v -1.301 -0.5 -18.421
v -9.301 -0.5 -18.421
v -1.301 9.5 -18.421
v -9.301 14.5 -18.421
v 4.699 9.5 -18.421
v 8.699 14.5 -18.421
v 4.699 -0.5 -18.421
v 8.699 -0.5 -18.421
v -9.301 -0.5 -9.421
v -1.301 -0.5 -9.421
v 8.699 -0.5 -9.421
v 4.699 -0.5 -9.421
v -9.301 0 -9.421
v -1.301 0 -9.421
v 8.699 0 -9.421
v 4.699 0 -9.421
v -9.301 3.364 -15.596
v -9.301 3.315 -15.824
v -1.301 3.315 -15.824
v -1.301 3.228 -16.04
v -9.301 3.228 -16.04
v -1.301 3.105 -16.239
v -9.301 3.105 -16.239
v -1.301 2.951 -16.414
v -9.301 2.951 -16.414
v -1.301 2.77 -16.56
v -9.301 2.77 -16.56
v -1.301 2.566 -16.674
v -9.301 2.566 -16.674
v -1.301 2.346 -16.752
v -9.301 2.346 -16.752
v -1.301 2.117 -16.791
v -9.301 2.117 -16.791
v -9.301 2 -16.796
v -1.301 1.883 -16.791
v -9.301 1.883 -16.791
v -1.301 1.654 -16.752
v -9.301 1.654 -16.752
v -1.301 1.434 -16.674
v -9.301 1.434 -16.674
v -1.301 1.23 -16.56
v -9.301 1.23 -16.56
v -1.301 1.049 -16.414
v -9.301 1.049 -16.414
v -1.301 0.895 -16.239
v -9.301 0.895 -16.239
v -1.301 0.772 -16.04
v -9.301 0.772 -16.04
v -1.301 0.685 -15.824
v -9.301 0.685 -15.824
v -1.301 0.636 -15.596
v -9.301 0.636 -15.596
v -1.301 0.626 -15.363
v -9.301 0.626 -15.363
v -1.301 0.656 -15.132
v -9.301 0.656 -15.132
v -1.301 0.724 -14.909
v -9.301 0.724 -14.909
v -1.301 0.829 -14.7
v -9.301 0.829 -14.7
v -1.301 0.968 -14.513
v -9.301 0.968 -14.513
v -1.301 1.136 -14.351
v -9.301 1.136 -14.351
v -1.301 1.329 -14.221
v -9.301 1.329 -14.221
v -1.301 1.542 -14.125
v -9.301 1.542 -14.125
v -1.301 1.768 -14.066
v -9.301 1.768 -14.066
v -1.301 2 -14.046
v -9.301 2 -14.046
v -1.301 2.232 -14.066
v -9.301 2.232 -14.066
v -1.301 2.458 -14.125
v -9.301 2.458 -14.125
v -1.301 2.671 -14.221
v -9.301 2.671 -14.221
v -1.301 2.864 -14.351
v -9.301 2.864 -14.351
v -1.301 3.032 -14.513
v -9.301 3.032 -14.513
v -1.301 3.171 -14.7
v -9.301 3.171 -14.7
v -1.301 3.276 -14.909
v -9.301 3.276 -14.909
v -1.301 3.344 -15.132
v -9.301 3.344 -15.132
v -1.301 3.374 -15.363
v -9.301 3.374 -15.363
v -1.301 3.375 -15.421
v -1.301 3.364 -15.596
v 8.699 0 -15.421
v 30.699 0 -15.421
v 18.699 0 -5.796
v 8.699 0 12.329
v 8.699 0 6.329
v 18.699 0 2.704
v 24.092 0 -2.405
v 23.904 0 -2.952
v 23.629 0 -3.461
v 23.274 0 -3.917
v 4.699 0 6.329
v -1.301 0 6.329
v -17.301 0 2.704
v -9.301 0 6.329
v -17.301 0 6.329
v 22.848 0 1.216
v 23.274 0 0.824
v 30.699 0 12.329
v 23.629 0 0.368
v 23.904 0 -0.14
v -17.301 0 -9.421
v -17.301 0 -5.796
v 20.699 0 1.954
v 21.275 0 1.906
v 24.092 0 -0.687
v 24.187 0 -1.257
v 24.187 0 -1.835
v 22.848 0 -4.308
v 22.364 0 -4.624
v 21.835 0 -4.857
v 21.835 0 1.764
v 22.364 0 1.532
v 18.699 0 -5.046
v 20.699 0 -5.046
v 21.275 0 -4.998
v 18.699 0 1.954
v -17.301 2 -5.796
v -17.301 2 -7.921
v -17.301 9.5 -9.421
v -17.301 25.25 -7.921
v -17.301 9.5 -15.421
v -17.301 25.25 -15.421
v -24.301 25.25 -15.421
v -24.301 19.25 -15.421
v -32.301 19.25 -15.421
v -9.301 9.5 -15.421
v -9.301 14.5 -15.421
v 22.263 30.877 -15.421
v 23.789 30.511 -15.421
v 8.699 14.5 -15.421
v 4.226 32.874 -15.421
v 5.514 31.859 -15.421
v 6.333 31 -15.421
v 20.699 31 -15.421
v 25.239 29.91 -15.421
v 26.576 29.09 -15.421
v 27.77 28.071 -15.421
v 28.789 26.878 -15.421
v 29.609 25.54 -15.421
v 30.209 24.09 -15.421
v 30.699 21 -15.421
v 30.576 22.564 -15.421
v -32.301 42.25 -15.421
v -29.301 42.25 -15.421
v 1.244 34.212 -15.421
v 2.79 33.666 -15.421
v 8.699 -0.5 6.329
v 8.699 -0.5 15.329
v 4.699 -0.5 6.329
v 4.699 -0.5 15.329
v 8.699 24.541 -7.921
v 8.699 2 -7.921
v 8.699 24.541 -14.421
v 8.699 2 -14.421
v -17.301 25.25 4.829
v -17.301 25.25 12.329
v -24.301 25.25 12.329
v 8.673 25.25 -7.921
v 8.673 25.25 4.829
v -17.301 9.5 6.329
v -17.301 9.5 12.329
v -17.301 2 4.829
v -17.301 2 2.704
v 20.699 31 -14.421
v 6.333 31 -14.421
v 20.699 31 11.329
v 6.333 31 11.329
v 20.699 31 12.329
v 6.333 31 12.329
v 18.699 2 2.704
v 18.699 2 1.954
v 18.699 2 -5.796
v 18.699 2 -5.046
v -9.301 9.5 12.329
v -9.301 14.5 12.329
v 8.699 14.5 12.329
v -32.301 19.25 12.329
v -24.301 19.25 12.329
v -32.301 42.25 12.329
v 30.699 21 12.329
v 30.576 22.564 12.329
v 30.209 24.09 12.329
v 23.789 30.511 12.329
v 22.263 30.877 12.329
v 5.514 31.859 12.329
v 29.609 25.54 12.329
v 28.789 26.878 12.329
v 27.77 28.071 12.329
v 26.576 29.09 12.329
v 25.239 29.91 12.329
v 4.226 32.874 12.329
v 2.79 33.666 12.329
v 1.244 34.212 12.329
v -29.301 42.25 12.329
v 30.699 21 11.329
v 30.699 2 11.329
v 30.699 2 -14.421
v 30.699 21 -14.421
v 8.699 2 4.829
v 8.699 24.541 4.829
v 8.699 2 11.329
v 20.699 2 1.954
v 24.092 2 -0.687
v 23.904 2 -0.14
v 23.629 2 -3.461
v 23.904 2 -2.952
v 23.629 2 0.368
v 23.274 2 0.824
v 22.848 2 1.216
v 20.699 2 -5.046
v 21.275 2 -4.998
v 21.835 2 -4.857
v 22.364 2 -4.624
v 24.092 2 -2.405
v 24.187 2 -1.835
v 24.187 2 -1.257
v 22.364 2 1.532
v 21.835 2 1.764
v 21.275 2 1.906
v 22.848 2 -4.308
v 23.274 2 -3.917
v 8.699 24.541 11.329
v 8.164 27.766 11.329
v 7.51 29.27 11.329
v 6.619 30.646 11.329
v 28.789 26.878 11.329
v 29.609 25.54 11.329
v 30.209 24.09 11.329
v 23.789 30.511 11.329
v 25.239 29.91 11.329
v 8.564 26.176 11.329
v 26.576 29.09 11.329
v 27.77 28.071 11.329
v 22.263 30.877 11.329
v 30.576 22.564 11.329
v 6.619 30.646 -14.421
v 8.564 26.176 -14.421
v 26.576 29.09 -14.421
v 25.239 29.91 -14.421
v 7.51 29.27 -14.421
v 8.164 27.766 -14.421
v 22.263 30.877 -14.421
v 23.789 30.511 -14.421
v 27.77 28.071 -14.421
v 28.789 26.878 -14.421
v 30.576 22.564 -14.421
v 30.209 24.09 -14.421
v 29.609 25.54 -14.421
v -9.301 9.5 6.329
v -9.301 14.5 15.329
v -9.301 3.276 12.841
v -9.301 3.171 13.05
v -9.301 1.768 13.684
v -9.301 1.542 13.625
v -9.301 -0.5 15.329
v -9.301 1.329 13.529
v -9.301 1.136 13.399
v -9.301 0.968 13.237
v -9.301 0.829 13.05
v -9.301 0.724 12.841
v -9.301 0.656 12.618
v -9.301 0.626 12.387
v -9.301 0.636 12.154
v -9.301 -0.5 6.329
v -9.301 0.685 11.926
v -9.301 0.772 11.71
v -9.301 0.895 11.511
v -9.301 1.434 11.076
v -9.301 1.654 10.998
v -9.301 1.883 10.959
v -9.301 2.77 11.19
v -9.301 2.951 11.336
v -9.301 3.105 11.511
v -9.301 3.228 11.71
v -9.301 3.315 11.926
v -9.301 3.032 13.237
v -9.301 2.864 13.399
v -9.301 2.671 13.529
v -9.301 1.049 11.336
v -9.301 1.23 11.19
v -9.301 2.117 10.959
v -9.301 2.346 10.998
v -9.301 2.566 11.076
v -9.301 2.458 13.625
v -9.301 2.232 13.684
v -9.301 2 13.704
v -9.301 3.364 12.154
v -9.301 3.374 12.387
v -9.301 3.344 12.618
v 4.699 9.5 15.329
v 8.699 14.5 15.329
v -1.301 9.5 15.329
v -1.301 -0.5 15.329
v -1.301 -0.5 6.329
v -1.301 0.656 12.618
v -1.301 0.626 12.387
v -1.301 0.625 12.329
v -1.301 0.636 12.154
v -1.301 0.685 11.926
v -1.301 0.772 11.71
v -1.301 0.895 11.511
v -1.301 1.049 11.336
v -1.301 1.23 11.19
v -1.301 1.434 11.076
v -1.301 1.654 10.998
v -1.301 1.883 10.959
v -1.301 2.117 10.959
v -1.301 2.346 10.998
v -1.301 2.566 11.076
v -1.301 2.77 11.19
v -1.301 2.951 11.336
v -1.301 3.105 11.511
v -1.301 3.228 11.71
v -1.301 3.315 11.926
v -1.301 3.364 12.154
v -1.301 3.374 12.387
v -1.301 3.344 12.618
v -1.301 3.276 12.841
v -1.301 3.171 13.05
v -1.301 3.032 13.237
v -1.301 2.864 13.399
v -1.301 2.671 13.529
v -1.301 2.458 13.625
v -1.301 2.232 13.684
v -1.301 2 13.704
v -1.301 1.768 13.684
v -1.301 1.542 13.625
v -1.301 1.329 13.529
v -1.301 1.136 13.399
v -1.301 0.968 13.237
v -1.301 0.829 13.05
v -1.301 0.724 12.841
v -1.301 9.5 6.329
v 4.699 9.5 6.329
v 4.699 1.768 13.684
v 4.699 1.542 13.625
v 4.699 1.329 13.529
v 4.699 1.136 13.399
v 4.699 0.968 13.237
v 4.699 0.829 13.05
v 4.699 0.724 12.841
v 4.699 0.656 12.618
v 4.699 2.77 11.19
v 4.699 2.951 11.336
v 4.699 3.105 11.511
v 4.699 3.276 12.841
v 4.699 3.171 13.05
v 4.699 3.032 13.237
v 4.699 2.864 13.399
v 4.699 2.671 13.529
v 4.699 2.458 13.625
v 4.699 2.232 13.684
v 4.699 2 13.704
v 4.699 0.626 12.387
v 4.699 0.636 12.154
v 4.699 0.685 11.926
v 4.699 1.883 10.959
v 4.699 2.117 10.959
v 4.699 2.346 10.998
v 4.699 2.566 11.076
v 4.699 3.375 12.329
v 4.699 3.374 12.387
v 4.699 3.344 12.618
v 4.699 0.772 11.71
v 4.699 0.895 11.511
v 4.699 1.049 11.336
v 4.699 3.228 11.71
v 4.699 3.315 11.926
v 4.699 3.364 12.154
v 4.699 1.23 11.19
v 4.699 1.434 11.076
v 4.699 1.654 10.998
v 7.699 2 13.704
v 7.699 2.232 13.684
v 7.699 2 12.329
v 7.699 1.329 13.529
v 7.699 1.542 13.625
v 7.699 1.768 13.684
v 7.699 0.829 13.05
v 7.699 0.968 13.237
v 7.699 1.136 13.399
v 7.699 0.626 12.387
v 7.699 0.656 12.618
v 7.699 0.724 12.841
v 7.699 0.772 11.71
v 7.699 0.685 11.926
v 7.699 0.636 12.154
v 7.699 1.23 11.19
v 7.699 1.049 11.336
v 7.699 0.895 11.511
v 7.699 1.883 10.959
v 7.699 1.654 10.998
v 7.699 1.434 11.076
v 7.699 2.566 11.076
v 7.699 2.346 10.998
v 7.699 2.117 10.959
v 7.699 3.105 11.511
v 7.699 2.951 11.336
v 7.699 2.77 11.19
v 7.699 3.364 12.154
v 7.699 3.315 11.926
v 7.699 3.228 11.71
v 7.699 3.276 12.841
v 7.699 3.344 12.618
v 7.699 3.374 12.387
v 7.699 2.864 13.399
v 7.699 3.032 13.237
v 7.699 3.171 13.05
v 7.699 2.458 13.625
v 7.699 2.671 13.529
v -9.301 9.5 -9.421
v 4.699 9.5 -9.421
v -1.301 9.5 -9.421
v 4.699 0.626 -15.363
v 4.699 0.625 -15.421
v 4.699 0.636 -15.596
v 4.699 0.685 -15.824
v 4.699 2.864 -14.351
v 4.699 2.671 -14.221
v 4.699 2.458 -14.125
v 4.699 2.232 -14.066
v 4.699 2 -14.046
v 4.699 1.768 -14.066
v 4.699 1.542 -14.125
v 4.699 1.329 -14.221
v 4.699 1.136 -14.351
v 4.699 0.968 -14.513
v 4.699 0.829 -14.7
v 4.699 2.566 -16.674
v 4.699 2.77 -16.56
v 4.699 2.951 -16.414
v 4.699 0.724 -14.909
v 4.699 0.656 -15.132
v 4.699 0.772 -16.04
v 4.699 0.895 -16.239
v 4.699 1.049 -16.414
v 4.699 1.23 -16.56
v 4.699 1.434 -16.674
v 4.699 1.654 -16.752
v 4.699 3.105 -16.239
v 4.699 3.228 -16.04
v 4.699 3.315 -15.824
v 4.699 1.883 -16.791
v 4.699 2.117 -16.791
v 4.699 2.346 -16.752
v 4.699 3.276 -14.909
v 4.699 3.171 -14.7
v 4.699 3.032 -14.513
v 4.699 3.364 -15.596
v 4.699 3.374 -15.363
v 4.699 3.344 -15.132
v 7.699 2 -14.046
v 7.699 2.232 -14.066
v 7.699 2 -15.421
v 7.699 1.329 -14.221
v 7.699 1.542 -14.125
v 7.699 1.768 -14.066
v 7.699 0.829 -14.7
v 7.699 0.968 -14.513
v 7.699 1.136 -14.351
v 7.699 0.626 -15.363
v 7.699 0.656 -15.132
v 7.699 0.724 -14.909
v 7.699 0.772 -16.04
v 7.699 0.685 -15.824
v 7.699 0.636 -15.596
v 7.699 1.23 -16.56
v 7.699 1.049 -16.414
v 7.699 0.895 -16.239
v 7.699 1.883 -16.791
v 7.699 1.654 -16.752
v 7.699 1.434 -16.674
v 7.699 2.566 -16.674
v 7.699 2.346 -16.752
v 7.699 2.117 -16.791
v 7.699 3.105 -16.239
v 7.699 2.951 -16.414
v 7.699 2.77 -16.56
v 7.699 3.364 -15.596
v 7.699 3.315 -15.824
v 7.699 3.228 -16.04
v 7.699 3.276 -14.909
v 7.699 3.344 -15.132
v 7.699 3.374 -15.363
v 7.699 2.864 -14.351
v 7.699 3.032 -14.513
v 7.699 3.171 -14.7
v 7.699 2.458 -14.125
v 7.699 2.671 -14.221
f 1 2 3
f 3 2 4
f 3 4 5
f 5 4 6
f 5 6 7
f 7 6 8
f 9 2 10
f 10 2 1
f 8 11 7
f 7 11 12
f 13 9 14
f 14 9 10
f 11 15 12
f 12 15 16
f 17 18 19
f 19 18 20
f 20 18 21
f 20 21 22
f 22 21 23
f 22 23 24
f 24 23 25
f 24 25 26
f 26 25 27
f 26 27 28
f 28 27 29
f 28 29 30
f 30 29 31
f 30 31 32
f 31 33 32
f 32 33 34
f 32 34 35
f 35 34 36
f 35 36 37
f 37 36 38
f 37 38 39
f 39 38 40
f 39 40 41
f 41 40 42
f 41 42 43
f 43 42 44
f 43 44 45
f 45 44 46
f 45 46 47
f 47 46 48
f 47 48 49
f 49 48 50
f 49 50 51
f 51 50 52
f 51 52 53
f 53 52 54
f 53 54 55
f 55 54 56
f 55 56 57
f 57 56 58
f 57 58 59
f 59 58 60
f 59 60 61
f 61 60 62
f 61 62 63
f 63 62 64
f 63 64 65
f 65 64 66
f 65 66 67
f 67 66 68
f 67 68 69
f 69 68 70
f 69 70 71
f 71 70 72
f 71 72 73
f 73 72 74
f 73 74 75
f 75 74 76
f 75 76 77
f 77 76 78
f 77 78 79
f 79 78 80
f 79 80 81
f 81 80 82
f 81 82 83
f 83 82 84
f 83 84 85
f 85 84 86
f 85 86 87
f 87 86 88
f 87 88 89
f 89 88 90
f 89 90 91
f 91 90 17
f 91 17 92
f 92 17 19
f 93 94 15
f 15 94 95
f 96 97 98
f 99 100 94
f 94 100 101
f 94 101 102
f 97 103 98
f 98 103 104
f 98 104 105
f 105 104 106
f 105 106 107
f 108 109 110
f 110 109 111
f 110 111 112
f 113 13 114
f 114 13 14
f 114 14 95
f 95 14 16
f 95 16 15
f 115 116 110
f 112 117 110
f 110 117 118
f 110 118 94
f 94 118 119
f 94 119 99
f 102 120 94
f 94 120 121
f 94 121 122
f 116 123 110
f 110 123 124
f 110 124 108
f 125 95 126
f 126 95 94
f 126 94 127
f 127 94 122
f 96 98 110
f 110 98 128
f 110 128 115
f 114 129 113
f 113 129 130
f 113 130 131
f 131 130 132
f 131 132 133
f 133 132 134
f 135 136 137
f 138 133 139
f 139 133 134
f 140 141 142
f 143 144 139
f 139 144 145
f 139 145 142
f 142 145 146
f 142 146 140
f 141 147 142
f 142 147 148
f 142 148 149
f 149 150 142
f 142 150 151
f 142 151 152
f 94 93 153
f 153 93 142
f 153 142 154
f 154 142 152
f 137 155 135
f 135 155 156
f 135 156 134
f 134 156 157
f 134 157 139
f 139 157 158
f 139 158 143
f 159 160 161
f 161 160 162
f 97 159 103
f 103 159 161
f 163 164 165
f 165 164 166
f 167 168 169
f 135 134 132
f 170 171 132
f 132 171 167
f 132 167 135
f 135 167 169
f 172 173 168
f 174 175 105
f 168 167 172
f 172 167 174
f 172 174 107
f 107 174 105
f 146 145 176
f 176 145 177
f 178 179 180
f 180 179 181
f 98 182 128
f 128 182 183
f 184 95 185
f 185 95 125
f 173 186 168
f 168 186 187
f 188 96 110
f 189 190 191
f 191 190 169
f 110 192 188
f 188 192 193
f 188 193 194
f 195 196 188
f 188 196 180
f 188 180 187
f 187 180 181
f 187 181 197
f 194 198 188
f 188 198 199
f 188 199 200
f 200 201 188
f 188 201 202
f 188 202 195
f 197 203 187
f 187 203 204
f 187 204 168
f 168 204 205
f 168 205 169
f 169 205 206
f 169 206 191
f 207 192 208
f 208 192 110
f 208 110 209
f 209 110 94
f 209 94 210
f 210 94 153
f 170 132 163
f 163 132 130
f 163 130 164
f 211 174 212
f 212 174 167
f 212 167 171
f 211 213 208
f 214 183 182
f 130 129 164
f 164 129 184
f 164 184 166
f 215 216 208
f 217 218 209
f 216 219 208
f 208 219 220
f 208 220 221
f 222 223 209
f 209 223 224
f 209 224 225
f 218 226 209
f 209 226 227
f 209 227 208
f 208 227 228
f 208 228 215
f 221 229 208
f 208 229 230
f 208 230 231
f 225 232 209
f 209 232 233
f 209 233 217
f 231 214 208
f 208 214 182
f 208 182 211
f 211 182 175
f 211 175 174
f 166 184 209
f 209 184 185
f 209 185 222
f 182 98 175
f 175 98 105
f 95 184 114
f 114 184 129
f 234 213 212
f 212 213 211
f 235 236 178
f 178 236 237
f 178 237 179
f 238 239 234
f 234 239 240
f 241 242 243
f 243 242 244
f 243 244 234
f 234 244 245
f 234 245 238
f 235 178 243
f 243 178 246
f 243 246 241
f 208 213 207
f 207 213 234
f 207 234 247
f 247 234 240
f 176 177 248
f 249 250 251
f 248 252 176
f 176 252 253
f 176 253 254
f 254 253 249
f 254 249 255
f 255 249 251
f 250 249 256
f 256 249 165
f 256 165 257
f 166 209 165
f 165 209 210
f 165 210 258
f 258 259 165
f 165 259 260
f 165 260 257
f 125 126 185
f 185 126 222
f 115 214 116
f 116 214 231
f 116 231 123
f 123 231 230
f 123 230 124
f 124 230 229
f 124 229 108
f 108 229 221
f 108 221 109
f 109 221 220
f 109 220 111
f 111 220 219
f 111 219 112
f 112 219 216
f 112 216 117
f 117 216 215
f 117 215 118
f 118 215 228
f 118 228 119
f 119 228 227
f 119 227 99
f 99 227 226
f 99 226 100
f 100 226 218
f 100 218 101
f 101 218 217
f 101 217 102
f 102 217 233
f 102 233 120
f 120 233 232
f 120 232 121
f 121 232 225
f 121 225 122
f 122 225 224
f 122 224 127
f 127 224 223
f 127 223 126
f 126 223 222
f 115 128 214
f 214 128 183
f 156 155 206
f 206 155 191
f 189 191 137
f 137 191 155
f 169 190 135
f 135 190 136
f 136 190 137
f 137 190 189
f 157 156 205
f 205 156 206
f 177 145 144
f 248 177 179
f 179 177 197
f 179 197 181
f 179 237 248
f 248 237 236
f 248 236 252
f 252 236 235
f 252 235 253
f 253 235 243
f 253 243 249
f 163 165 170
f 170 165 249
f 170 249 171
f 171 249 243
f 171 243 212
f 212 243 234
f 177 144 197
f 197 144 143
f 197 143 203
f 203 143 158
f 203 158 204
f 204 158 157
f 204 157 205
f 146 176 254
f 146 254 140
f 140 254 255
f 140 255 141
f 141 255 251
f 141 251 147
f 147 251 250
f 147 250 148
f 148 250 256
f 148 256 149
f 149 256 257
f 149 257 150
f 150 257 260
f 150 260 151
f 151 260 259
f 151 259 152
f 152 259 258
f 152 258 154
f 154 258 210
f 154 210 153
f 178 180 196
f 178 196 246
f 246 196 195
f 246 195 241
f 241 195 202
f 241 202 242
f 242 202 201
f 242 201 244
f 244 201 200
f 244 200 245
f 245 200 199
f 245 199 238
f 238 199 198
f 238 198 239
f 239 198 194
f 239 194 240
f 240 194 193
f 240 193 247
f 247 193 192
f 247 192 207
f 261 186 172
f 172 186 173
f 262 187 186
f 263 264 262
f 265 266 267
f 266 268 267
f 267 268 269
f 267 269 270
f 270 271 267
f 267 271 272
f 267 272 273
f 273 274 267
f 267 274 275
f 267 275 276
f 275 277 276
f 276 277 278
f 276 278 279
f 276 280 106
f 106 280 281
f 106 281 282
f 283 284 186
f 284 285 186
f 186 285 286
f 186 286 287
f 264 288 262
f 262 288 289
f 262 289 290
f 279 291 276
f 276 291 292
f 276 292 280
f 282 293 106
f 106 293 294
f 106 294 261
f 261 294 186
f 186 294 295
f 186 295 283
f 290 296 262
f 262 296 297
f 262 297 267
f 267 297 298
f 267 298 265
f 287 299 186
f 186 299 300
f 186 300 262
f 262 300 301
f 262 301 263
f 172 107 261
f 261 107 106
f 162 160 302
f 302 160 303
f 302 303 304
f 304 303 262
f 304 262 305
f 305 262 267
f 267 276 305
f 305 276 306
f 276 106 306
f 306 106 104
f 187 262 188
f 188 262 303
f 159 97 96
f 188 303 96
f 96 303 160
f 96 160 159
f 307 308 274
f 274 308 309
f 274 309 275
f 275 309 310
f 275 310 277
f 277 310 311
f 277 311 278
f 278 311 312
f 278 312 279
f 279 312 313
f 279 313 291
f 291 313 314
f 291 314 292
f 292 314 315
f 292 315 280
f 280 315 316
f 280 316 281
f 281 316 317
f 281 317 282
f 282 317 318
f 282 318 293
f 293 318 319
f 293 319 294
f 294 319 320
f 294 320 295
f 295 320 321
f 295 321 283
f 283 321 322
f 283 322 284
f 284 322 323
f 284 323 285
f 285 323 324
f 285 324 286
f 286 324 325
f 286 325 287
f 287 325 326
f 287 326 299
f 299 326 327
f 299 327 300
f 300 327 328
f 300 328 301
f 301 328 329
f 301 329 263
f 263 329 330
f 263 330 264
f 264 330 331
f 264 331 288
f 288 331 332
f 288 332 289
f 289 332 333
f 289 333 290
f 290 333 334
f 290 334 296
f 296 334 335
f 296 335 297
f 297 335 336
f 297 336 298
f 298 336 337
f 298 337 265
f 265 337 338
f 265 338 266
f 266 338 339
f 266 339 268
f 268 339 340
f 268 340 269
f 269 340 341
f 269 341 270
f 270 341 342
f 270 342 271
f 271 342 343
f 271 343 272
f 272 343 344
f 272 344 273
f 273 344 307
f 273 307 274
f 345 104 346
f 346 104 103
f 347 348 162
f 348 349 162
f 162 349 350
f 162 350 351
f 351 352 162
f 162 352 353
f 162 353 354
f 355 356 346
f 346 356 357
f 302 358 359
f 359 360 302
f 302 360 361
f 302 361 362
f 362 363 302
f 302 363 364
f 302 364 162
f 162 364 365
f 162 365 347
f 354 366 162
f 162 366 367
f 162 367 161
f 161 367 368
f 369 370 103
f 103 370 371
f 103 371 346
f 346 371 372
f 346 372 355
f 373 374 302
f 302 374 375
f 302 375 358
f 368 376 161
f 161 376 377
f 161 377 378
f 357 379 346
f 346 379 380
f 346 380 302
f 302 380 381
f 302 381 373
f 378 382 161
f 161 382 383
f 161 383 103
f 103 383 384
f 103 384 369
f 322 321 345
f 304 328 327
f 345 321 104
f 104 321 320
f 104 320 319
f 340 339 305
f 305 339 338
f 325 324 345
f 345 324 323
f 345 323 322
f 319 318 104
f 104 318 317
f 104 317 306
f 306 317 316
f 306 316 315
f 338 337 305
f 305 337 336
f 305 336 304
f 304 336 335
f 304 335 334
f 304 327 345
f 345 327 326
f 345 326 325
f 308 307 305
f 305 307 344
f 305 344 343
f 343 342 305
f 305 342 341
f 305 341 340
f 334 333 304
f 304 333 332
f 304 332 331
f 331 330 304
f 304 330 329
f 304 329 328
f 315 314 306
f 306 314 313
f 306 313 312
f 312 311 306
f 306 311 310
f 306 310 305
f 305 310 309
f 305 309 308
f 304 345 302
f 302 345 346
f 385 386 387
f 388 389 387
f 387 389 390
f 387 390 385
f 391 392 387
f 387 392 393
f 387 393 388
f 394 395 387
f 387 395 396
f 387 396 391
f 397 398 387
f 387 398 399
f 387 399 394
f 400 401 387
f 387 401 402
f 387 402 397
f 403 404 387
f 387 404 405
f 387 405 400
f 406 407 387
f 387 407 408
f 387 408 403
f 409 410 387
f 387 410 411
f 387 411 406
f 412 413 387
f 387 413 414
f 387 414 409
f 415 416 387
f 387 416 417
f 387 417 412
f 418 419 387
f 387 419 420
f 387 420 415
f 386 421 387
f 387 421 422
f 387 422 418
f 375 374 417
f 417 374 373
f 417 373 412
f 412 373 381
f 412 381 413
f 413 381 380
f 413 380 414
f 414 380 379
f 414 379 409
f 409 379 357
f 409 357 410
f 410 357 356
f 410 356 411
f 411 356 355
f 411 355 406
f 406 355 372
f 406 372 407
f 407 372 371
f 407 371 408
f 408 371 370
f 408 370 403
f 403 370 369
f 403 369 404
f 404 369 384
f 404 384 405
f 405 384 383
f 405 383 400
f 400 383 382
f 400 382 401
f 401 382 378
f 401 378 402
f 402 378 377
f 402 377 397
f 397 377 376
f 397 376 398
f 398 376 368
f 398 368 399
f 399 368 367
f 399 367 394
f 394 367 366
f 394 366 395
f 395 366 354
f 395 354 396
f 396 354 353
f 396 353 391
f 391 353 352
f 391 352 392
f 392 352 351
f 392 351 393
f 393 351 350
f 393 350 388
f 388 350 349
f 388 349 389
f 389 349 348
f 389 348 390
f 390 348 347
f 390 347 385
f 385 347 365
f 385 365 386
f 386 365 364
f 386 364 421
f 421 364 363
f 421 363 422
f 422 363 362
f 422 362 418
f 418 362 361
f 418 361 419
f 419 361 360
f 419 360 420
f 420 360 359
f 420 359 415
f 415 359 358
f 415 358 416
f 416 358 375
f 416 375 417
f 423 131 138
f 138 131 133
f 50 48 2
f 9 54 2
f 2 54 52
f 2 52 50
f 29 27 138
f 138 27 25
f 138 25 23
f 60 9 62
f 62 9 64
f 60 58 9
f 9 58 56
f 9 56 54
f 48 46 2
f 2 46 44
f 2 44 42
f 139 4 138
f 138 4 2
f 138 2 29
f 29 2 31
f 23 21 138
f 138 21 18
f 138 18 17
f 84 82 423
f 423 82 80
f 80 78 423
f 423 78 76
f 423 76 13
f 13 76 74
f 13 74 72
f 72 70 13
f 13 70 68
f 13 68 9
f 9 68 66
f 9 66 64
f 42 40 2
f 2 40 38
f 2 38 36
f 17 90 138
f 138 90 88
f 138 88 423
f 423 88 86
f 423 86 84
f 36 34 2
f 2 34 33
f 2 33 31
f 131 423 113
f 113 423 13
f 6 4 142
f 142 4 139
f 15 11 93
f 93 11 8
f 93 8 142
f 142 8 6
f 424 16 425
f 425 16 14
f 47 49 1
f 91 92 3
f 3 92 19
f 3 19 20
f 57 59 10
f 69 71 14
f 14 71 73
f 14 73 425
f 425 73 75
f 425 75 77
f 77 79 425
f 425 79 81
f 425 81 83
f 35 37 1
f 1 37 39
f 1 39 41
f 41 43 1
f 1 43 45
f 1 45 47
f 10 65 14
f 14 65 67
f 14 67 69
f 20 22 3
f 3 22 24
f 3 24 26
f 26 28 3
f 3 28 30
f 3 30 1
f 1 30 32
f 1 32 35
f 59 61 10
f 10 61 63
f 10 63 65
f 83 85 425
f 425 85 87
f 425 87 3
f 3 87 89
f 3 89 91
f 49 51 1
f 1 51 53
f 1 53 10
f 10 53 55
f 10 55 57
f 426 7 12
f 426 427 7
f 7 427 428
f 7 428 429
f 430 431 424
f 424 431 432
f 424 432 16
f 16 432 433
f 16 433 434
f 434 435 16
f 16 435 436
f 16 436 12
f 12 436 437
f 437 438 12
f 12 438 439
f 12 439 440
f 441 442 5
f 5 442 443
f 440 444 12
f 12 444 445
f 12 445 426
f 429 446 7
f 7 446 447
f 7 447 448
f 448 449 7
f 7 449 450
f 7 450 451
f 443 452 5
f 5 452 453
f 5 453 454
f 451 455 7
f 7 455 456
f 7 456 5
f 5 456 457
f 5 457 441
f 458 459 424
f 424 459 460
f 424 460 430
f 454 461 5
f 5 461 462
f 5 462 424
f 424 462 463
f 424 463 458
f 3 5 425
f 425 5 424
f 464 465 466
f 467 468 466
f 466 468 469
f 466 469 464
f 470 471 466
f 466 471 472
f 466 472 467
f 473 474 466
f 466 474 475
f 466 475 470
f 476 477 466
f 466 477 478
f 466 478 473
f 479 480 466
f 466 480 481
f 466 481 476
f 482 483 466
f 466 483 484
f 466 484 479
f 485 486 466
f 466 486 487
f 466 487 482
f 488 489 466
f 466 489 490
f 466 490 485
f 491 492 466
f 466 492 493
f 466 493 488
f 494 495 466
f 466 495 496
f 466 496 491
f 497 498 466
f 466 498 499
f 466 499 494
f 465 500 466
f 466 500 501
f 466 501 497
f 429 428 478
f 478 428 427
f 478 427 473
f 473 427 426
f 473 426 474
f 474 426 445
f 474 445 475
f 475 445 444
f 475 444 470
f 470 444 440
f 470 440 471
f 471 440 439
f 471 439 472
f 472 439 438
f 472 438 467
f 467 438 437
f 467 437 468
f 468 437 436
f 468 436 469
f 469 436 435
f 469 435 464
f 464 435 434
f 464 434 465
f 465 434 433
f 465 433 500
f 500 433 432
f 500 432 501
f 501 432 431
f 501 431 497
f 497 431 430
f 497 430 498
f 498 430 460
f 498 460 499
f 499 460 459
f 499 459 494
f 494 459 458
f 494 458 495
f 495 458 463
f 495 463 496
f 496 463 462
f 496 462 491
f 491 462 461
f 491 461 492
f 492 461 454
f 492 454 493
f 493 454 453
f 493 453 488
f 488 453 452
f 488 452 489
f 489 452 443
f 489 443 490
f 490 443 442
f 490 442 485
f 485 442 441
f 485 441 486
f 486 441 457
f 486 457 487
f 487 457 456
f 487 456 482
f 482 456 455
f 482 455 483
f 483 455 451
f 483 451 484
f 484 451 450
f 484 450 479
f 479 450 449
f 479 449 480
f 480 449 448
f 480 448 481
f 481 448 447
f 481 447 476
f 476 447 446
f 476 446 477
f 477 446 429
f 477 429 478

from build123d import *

# Parameters (mm, degrees)
SKETCH1_W           = 48
SKETCH1_H           = 27.75
BOSS_EXTRUDE1_DEPTH = 31
CUT_EXTRUDE1_DEPTH  = 36
SKETCH3_W           = 22
SKETCH3_H           = 25.75
CUT_EXTRUDE2_DEPTH  = 29
CUT_EXTRUDE3_DEPTH  = 45.957983893
BOSS_EXTRUDE2_START = -26
SKETCH5_W           = 27.75
SKETCH5_H           = 17
BOSS_EXTRUDE2_DEPTH = 41
SKETCH10_W          = 27.75
SKETCH10_H          = 23
BOSS_EXTRUDE4_DEPTH = 8
CHAMFER1_SIZE       = 38
CHAMFER1_SIZE2      = 10
FILLET1_R           = 10
SKETCH6_W           = 9
SKETCH6_H           = 9.5
CUT_EXTRUDE4_DEPTH  = 8
BOSS_EXTRUDE3_DEPTH = 18
SKETCH8_R           = 1.375
CUT_EXTRUDE5_DEPTH  = 17
SKETCH9_W           = 6
SKETCH9_H           = 10
CUT_EXTRUDE6_DEPTH  = 9


with BuildPart() as part:
    # Sketch1 → Boss-Extrude1 (new body)
    with BuildSketch(Plane(origin=(0, 0, 0), x_dir=(1, 0, 0), z_dir=(0, 1, 0))):
        with Locations((6.698630137, 1.546232877)):
            Rectangle(SKETCH1_W, SKETCH1_H)
    extrude(amount=BOSS_EXTRUDE1_DEPTH)

    # Sketch2 → Cut-Extrude1 (cut)
    with BuildSketch(Plane.ZY.offset(17.301369863)):
        Polygon((-7.921232877, 25.25), (4.828767123, 25.25), (4.828767123, 2), (2.703767123, 2), (2.703767123, 0), (-5.796232877, 0), (-5.796232877, 2), (-7.921232877, 2), align=None)
    extrude(amount=-CUT_EXTRUDE1_DEPTH, mode=Mode.SUBTRACT)

    # Sketch3 → Cut-Extrude2 (cut)
    with BuildSketch(Plane(origin=(0, 31, 0), x_dir=(1, 0, 0), z_dir=(0, 1, 0))):
        with Locations((19.698630137, 1.546232877)):
            Rectangle(SKETCH3_W, SKETCH3_H)
    extrude(amount=-CUT_EXTRUDE2_DEPTH, mode=Mode.SUBTRACT)

    # Sketch4 → Cut-Extrude3 (cut, through all)
    with BuildSketch(Plane(origin=(0, 2, 0), x_dir=(1, 0, 0), z_dir=(0, 1, 0))):
        with BuildLine():
            Line((20.698630137, -1.953767123), (18.698630137, -1.953767123))
            ThreePointArc((18.698630137, -1.953767123), (15.198630137, 1.546232877), (18.698630137, 5.046232877))
            Line((18.698630137, 5.046232877), (20.698630137, 5.046232877))
            ThreePointArc((20.698630137, 5.046232877), (24.198630137, 1.546232877), (20.698630137, -1.953767123))
        make_face()
    extrude(amount=-CUT_EXTRUDE3_DEPTH, mode=Mode.SUBTRACT)

    # Sketch5 → Boss-Extrude2 (add)
    with BuildSketch(Plane.ZY.offset(17.301369863).offset(BOSS_EXTRUDE2_START)):
        with Locations((-1.546232877, 33.75)):
            Rectangle(SKETCH5_W, SKETCH5_H)
    extrude(amount=BOSS_EXTRUDE2_DEPTH)

    # Sketch10 → Boss-Extrude4 (add)
    with BuildSketch(Plane.ZY.offset(32.301369863)):
        with Locations((-1.546232877, 30.75)):
            Rectangle(SKETCH10_W, SKETCH10_H)
    extrude(amount=-BOSS_EXTRUDE4_DEPTH)

    # Chamfer1
    chamfer1_edges = [part.edges().sort_by_distance(p)[0] for p in [
        (8.698630137, 42.25, -1.546232877),
    ]]
    chamfer1_side = [part.faces().sort_by_distance(p)[0] for p in [
        (-11.801369863, 42.25, -1.546232877),
    ]]
    chamfer(chamfer1_edges, length=CHAMFER1_SIZE, length2=CHAMFER1_SIZE2, reference=chamfer1_side[0])

    # Fillet1
    # the kernel refuses this fillet: 10 mm, written as the material it takes off along each edge
    with BuildSketch(Plane(origin=(30.698630137, 31, -40.421232877), x_dir=(-1, 0, 0), z_dir=(0, 0, 1))) as fillet1_piece_1:
        with BuildLine():
            CenterArc((FILLET1_R, FILLET1_R), FILLET1_R, 180, 90)
            Line((0, FILLET1_R), (0, 0))
            Line((0, 0), (FILLET1_R, 0))
        make_face()
    extrude(amount=51, mode=Mode.SUBTRACT)
    with BuildSketch(Plane(origin=(30.698630137, 31, -13.671232877), x_dir=(0, -1, 0), z_dir=(0, 0, 1))) as fillet1_piece_2:
        with BuildLine():
            CenterArc((FILLET1_R, -FILLET1_R), FILLET1_R, 90, 90)
            Line((0, -FILLET1_R), (0, 0))
            Line((0, 0), (FILLET1_R, 0))
        make_face()
    extrude(amount=51, mode=Mode.SUBTRACT)
    with BuildSketch(Plane(origin=(8.698630137, 32.25, -34.693446961), x_dir=(-0.9670745372626461, 0.25449329927964454, 0), z_dir=(0, 0, 1))) as fillet1_piece_3_section:
        with BuildLine():
            CenterArc((FILLET1_R * 0.770888563389, FILLET1_R), FILLET1_R, 194.743562836, 75.256437164)
            Line((-FILLET1_R * 0.196185973874, FILLET1_R * 0.74550670072), (0, 0))
            Line((0, 0), (FILLET1_R * 0.770888563389, 0))
        make_face()
    fillet1_piece_3 = extrude(amount=66.294428169, mode=Mode.PRIVATE)
    fillet1_piece_3 = split(fillet1_piece_3, bisect_by=Plane(origin=(6.418470389, 31, -14.921232877), z_dir=(0, 1, 0)), keep=Keep.TOP, mode=Mode.PRIVATE)
    add(fillet1_piece_3, mode=Mode.SUBTRACT)
    with BuildSketch(Plane(origin=(8.698630137, 32.25, -34.693446961), x_dir=(-0.9670745372626461, 0.25449329927964454, 0), z_dir=(0, 0, 1))) as fillet1_piece_4_section:
        with BuildLine():
            CenterArc((FILLET1_R * 0.770888563389, FILLET1_R), FILLET1_R, 194.743562836, 75.256437164)
            Line((-FILLET1_R * 0.196185973874, FILLET1_R * 0.74550670072), (0, 0))
            Line((0, 0), (FILLET1_R * 0.770888563389, 0))
        make_face()
    fillet1_piece_4 = extrude(amount=66.294428169, mode=Mode.PRIVATE)
    fillet1_piece_4 = split(fillet1_piece_4, bisect_by=Plane(origin=(8.005221355, 29.431341636, -14.421232877), z_dir=(0, 0, 1)), keep=Keep.TOP, mode=Mode.PRIVATE)
    fillet1_piece_4 = split(fillet1_piece_4, bisect_by=Plane(origin=(8.005221355, 29.431341636, 11.328767123), z_dir=(0, 0, -1)), keep=Keep.TOP, mode=Mode.PRIVATE)
    add(fillet1_piece_4, mode=Mode.SUBTRACT)

    # Sketch6 → Cut-Extrude4 (cut)
    with BuildSketch(Plane.ZY.offset(17.301369863)):
        with Locations((10.828767123, 4.75)):
            Rectangle(SKETCH6_W, SKETCH6_H)
    cut_extrude4 = extrude(amount=-CUT_EXTRUDE4_DEPTH, mode=Mode.SUBTRACT)

    # Sketch7 → Boss-Extrude3 (add)
    with BuildSketch(Plane.ZY.offset(9.301369863)):
        Polygon((12.328767123, 0), (12.328767123, 9.5), (12.328767123, 14.5), (15.328767123, 14.5), (15.328767123, 9.5), (15.328767123, 0), (15.328767123, -0.5), (6.328767123, -0.5), (6.328767123, 0), align=None)
    boss_extrude3 = extrude(amount=-BOSS_EXTRUDE3_DEPTH)

    # Sketch8 → Cut-Extrude5 (cut)
    with BuildSketch(Plane.ZY.offset(9.301369863)):
        with Locations((12.328767123, 2)):
            Circle(SKETCH8_R)
    cut_extrude5 = extrude(amount=-CUT_EXTRUDE5_DEPTH, mode=Mode.SUBTRACT)

    # Sketch9 → Cut-Extrude6 (cut)
    with BuildSketch(Plane.XY.offset(15.328767123)):
        with Locations((1.698630137, 4.5)):
            Rectangle(SKETCH9_W, SKETCH9_H)
    cut_extrude6 = extrude(amount=-CUT_EXTRUDE6_DEPTH, mode=Mode.SUBTRACT)

    # Mirror1: Cut-Extrude4, Boss-Extrude3, Cut-Extrude5, Cut-Extrude6 across plane
    add(cut_extrude4.mirror(Plane.XY.offset(-1.546232877)), mode=Mode.SUBTRACT)
    add(boss_extrude3.mirror(Plane.XY.offset(-1.546232877)))
    add(cut_extrude5.mirror(Plane.XY.offset(-1.546232877)), mode=Mode.SUBTRACT)
    add(cut_extrude6.mirror(Plane.XY.offset(-1.546232877)), mode=Mode.SUBTRACT)


solid = part.part
